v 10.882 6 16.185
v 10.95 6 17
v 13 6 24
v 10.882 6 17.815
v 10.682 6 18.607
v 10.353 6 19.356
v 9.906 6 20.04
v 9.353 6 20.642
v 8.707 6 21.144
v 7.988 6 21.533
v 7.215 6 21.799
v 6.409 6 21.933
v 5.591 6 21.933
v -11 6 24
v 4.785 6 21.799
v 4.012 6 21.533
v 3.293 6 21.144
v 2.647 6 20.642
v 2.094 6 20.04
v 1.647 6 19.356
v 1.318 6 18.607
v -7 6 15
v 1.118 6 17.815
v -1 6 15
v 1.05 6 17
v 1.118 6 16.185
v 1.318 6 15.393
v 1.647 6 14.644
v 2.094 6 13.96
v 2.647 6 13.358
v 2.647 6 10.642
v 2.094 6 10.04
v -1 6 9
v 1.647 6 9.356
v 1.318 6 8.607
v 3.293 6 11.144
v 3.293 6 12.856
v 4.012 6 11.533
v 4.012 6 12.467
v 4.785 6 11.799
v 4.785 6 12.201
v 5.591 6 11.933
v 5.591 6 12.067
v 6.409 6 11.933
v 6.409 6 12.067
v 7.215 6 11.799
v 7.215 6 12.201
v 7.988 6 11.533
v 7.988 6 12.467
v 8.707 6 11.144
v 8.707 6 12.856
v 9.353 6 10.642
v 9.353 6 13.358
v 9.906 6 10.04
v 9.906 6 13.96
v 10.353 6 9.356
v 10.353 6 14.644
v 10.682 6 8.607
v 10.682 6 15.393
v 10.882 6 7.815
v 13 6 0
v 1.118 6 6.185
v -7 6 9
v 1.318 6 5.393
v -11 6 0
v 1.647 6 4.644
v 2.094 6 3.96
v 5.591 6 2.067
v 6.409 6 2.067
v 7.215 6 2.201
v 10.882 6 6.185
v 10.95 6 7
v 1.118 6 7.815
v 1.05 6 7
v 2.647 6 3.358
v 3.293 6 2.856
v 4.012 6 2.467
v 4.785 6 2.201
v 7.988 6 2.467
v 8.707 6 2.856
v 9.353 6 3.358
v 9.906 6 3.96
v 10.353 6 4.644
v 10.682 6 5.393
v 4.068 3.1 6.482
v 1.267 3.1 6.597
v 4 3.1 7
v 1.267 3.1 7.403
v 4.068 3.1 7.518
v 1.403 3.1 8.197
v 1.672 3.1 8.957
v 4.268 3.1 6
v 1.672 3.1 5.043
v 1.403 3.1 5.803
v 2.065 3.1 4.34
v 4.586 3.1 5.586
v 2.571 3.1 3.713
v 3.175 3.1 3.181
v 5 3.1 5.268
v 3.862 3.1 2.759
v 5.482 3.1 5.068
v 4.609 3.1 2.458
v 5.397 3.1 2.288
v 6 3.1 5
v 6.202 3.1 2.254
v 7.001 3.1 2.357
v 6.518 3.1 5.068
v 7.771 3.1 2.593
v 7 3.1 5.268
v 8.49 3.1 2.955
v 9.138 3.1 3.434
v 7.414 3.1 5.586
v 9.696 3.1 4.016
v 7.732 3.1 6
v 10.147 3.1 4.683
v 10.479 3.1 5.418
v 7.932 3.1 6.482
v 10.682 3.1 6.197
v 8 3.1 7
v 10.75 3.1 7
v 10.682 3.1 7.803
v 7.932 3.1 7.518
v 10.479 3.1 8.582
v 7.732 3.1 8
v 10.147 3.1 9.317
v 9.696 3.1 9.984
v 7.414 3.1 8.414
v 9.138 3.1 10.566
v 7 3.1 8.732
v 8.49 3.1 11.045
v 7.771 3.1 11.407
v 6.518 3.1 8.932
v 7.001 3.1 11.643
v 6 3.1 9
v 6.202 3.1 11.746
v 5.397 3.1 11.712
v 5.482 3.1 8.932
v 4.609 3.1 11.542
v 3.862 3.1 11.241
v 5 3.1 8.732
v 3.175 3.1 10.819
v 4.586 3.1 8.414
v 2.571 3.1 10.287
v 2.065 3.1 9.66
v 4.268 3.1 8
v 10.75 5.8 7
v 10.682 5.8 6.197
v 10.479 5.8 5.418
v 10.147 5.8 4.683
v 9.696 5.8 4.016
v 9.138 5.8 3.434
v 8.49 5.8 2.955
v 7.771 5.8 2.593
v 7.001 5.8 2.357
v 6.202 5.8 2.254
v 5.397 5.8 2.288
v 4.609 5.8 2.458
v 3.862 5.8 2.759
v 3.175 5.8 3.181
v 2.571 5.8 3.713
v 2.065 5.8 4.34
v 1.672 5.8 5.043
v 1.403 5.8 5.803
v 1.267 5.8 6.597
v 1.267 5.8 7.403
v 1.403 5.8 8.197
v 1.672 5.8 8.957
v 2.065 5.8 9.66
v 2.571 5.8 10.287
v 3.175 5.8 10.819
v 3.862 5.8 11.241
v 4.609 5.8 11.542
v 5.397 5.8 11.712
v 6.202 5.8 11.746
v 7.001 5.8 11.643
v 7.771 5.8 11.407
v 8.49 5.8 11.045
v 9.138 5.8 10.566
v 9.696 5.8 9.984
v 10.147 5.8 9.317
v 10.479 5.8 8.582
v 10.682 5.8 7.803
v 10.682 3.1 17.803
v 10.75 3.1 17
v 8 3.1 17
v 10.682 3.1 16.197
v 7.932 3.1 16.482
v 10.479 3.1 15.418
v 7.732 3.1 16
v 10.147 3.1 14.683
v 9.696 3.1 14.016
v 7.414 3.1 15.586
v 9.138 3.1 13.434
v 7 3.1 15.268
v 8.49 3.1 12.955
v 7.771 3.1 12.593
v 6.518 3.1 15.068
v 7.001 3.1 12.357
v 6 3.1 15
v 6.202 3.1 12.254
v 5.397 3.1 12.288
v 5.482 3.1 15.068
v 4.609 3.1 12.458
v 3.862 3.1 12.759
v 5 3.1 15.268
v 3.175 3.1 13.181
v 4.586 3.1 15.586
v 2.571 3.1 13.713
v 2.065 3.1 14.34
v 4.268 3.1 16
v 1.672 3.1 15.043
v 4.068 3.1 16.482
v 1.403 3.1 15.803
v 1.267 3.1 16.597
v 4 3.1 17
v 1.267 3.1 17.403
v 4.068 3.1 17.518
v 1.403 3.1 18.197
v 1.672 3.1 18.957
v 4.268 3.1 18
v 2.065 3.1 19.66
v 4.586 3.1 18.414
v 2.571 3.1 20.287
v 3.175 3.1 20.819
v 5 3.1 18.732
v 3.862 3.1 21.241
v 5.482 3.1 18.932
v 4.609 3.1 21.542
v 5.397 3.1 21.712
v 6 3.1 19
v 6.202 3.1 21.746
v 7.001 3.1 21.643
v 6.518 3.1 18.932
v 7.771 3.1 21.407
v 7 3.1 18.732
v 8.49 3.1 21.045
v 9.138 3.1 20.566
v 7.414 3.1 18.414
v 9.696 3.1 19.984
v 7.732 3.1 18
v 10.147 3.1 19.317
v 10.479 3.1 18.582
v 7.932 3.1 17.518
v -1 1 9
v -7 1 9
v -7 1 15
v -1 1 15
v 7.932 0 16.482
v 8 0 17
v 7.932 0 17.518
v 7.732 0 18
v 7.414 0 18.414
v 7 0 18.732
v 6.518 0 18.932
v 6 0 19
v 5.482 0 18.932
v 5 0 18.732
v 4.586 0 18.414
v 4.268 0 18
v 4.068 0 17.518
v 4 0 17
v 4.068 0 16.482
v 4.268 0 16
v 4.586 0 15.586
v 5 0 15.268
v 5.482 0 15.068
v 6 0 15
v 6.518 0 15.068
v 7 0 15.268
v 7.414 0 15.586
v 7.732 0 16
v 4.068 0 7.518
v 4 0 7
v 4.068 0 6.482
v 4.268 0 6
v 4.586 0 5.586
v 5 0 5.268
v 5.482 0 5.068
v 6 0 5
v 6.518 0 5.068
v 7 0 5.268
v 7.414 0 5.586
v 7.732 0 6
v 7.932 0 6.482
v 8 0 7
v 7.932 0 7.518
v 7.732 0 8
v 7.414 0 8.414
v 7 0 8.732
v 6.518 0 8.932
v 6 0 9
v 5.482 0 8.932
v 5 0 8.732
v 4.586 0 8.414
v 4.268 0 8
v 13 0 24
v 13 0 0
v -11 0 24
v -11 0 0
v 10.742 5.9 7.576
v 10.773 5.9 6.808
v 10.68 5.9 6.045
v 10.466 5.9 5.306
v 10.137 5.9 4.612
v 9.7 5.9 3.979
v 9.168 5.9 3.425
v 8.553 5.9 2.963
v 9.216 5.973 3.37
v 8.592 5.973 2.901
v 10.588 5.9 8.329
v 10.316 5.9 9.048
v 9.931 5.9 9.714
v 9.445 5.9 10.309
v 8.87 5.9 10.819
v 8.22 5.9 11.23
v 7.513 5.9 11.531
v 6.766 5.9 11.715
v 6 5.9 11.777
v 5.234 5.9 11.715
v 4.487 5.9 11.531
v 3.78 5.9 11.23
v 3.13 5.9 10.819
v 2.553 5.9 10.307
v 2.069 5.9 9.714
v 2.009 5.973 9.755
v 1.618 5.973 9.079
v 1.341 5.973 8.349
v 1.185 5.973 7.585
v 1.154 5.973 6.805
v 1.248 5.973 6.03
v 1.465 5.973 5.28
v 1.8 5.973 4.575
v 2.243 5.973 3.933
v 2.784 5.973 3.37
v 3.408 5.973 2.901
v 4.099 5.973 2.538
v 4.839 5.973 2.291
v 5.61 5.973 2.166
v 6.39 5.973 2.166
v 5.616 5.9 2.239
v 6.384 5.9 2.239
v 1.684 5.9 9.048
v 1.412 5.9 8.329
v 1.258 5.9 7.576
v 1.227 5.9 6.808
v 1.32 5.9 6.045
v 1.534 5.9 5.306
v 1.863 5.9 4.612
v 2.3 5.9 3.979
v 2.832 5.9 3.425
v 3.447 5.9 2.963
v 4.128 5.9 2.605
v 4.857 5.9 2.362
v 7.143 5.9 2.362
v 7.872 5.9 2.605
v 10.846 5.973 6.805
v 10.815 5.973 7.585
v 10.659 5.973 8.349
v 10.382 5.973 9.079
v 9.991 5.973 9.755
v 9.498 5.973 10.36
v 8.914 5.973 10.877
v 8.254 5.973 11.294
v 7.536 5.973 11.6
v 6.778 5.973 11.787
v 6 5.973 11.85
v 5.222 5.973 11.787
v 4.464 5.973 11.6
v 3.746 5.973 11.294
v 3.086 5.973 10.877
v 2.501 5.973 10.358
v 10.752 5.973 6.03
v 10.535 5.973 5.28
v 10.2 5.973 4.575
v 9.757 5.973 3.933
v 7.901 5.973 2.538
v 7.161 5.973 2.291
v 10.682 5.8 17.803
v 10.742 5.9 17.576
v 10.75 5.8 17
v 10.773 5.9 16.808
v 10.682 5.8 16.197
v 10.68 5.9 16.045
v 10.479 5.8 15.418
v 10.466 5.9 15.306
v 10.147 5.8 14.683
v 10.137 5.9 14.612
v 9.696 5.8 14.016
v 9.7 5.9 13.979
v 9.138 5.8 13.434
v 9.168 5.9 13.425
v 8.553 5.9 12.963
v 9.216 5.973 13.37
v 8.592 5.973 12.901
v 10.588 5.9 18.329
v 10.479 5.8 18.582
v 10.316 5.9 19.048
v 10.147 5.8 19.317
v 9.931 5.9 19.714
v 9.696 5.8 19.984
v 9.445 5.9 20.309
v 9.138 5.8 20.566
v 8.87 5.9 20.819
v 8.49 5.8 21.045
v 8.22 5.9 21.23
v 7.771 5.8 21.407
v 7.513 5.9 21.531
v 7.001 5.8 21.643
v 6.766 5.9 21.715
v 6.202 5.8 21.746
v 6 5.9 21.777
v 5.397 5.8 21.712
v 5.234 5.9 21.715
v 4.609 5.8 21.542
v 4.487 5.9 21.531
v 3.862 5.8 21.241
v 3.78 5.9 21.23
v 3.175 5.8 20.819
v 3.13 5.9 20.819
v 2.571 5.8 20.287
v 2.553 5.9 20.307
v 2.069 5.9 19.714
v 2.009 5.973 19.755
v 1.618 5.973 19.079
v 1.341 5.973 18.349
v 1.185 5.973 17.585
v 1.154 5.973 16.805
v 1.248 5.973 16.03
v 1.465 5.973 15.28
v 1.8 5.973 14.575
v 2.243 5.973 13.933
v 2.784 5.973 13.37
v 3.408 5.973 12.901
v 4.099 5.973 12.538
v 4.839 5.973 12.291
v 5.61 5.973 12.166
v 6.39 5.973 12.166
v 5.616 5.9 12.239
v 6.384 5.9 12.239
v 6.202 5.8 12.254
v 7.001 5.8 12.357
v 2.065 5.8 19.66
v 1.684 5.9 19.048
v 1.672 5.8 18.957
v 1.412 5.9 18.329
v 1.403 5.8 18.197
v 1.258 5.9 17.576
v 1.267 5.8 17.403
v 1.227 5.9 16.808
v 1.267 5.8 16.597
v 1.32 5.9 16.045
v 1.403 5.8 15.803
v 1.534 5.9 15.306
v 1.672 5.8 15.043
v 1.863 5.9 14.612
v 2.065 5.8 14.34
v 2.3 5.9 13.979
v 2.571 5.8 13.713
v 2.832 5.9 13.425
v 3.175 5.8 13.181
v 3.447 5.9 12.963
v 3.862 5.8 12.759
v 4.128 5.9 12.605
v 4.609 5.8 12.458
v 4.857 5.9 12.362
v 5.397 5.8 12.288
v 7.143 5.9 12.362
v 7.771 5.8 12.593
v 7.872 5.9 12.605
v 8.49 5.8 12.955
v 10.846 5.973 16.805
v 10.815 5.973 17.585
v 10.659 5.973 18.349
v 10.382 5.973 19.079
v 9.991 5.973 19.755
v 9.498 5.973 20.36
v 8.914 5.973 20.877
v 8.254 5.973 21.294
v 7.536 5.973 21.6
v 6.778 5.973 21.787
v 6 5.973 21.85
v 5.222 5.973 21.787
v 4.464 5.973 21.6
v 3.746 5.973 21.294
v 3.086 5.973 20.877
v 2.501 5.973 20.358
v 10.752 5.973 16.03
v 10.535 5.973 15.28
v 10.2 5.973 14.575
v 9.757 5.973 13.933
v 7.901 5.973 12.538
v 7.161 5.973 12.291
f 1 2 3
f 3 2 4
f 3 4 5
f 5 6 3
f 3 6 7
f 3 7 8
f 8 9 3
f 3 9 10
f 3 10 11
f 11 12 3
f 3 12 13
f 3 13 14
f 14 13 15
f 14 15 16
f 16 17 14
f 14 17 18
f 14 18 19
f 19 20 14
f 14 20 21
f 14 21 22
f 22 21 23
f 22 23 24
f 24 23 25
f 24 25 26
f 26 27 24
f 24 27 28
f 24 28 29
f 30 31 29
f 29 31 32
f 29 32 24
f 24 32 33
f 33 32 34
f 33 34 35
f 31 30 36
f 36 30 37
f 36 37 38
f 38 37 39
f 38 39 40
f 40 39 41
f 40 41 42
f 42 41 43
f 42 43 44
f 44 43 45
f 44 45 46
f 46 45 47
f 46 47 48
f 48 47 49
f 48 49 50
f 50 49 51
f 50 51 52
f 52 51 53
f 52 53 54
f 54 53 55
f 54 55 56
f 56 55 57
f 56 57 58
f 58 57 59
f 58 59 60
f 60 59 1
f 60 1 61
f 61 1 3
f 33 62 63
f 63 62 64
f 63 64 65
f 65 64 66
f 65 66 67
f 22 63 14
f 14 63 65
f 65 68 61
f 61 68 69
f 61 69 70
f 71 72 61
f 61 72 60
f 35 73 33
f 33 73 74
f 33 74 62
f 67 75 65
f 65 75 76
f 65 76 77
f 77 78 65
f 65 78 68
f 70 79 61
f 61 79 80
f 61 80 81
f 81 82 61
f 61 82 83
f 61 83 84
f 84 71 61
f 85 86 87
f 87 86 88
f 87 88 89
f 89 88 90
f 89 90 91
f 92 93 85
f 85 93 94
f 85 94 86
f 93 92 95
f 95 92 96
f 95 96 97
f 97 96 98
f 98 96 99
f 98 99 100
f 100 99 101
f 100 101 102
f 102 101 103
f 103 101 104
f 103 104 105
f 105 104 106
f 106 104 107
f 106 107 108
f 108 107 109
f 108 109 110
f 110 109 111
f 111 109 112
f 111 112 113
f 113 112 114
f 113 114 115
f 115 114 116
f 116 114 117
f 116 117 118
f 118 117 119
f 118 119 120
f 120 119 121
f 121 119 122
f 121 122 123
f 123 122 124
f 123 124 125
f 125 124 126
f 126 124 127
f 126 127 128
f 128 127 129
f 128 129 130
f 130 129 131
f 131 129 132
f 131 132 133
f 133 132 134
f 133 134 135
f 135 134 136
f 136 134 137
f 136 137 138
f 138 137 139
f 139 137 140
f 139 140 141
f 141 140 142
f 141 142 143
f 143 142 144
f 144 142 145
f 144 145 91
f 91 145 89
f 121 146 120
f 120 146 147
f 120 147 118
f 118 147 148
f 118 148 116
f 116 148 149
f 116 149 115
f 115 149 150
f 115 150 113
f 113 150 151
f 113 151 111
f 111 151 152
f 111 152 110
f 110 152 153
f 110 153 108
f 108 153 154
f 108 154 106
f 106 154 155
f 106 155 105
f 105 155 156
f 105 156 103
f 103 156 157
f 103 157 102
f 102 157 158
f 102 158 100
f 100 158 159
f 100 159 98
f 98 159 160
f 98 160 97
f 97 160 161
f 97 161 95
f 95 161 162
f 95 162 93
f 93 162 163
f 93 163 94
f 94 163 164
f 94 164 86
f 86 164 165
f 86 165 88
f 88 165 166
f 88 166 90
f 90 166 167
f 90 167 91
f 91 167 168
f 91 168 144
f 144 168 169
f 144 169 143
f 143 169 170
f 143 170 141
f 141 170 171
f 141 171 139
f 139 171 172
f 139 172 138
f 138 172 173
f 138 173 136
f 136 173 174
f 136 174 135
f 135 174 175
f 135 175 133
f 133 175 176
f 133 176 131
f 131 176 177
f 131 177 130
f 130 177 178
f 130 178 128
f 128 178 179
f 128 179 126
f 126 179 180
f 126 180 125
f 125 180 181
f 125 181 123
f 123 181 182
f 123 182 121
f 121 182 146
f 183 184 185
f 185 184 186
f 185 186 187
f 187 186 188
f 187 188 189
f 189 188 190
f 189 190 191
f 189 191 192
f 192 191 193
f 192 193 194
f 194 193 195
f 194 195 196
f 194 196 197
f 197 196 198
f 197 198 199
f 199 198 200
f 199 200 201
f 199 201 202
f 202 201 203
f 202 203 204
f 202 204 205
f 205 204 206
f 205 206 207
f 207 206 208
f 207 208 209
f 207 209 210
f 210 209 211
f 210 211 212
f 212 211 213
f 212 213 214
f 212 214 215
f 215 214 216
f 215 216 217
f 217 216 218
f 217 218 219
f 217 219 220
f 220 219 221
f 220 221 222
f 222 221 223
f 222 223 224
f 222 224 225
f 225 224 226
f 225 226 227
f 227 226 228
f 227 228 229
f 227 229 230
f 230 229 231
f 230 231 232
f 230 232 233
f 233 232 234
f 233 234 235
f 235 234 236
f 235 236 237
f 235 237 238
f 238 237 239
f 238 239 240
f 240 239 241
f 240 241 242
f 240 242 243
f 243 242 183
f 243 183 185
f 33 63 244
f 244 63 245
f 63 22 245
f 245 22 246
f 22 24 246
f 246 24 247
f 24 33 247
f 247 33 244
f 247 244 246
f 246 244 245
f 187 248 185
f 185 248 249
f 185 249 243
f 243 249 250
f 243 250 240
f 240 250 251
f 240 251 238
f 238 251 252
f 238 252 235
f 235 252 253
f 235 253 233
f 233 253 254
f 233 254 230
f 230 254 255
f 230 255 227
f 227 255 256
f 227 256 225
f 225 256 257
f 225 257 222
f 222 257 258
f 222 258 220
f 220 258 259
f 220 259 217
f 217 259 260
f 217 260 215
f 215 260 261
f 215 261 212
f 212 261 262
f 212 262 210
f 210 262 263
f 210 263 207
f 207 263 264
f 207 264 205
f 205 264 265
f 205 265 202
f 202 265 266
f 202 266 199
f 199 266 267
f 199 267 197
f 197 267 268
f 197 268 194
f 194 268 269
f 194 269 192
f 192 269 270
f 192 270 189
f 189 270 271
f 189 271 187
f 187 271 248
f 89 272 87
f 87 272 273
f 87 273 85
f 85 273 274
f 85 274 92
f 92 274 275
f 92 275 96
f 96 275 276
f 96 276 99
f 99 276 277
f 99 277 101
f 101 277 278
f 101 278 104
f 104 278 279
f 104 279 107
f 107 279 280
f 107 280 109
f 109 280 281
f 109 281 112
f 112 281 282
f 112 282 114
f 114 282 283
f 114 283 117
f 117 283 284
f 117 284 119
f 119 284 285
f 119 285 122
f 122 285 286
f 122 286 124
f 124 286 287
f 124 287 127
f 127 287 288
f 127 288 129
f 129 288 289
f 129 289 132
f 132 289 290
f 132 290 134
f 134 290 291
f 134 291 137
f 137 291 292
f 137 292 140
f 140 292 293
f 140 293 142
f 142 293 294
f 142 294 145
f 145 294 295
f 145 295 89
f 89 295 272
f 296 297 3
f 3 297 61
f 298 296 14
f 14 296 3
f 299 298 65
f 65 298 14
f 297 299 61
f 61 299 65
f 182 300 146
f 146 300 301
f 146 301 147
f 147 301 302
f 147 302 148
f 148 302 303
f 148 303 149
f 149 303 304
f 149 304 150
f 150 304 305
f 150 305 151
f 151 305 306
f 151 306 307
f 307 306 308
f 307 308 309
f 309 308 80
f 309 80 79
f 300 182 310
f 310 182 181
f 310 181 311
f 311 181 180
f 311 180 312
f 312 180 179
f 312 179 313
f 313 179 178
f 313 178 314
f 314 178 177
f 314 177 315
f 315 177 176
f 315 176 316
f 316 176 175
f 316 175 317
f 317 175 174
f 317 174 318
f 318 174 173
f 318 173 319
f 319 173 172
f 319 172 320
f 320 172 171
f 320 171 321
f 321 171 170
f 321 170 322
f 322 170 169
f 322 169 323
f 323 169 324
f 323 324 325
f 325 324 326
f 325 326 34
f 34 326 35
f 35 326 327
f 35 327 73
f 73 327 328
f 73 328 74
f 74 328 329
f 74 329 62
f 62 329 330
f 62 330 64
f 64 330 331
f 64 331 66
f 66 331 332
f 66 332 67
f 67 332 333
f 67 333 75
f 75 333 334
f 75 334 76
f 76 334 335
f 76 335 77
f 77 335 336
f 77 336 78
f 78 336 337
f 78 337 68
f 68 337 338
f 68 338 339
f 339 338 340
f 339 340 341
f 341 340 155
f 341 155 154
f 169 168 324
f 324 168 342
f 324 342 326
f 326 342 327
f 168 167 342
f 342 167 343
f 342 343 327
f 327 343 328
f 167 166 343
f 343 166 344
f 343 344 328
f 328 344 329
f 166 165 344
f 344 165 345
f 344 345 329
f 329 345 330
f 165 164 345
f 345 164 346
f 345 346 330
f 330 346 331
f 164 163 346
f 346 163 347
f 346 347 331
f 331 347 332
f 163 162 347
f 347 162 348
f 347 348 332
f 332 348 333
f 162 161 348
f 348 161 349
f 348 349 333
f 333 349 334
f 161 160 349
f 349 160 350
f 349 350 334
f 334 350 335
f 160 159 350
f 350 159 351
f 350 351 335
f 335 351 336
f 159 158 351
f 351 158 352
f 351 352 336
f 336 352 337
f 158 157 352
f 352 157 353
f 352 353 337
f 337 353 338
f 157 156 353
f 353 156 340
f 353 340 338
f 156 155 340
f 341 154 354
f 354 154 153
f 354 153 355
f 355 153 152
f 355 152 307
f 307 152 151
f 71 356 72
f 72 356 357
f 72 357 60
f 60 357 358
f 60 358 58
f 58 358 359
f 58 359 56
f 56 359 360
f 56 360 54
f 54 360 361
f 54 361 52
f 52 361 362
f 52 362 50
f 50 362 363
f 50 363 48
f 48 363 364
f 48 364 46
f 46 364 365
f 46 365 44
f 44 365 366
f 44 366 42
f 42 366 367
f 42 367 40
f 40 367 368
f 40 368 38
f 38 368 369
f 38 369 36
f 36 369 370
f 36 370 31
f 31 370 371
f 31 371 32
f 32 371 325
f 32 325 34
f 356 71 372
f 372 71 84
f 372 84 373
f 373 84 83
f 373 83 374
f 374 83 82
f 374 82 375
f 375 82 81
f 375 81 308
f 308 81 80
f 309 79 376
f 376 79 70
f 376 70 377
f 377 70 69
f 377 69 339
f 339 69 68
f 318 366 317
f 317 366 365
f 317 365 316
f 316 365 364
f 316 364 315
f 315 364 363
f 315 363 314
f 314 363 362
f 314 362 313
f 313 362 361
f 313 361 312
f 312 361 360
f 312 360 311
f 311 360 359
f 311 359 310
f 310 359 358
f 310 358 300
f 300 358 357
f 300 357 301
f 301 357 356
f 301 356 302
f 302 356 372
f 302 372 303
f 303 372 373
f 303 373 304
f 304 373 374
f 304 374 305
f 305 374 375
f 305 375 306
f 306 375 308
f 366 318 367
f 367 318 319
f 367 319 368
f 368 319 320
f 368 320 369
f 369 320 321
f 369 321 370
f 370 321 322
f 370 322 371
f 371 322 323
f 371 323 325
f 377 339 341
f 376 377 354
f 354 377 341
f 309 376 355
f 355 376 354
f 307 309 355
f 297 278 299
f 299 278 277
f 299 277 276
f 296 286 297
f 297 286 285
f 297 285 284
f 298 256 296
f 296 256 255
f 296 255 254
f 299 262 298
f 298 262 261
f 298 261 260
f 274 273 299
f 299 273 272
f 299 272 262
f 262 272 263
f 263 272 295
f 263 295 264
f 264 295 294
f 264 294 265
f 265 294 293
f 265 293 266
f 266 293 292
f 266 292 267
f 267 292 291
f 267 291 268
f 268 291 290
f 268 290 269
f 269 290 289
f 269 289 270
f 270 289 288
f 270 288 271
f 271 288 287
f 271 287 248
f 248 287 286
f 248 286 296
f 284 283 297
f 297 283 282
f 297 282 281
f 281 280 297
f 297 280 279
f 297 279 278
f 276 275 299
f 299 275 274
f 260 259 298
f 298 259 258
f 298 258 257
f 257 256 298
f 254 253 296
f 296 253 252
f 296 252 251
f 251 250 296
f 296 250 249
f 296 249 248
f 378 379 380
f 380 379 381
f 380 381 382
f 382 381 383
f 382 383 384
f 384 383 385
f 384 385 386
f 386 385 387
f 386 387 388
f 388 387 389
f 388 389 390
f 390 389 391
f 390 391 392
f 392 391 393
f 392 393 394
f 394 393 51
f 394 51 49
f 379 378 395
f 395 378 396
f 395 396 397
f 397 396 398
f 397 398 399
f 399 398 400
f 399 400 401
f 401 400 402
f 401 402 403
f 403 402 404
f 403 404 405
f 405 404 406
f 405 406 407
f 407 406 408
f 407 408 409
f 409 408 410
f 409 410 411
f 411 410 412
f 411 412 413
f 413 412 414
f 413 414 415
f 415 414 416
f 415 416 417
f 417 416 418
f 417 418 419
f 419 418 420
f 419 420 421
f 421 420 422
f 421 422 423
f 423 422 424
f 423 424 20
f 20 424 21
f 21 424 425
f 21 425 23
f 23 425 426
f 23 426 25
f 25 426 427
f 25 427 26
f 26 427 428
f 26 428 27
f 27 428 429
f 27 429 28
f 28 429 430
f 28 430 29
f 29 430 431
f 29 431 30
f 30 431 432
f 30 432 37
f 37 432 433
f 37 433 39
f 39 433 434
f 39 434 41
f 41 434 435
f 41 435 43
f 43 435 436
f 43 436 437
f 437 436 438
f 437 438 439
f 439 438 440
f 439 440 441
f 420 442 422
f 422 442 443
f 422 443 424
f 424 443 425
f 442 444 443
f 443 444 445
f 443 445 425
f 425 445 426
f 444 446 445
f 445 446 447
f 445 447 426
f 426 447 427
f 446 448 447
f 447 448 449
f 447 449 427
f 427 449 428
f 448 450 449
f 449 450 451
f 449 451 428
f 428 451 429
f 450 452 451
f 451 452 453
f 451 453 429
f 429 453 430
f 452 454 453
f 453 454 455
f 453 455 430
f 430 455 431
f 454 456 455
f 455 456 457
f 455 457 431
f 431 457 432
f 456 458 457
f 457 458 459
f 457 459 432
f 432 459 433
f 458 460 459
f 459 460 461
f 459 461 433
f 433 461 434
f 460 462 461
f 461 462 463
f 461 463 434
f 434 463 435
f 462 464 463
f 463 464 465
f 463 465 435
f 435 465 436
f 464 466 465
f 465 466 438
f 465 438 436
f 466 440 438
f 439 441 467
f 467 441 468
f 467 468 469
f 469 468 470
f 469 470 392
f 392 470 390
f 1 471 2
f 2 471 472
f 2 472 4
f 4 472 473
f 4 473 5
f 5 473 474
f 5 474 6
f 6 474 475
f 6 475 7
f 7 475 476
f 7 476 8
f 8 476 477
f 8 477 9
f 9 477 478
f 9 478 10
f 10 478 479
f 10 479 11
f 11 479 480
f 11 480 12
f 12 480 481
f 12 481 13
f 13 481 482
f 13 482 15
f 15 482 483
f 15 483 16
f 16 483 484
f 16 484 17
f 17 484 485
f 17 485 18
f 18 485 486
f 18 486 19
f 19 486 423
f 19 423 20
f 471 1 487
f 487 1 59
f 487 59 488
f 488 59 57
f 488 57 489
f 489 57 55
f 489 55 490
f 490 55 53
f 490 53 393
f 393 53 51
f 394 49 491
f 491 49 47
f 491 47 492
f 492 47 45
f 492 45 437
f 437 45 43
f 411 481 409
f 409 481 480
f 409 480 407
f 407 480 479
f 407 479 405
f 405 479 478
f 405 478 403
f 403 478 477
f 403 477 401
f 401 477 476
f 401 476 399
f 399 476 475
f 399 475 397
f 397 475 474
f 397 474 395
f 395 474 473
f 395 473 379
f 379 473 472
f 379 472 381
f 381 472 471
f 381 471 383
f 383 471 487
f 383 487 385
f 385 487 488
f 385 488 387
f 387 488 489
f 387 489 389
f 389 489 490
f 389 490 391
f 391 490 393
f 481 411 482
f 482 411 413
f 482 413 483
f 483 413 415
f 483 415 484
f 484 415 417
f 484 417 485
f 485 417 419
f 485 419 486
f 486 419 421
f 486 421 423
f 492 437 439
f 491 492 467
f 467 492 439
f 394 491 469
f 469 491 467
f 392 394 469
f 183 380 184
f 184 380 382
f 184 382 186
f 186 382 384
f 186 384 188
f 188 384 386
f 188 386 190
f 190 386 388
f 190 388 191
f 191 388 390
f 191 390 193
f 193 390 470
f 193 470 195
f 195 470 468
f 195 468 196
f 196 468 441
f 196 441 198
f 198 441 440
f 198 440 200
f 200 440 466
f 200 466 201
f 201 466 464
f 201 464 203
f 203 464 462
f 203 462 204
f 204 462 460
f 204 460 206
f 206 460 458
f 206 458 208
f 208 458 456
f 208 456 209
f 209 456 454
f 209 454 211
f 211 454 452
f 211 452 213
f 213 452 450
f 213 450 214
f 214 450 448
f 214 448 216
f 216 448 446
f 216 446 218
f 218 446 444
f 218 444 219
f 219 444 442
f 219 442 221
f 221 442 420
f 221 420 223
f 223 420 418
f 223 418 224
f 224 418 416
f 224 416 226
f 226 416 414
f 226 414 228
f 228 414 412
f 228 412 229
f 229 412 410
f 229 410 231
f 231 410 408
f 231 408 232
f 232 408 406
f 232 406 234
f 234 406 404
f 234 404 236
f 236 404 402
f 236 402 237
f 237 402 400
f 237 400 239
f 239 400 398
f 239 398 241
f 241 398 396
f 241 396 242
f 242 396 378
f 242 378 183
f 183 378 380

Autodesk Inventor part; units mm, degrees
ref_plane "YZ Plane" through (0, 0, 0) normal (1, 0, 0) x (0, 1, 0)
ref_plane "XZ Plane" through (0, 0, 0) normal (0, 1, 0) x (-1, 0, 0)
ref_plane "XY Plane" through (0, 0, 0) normal (0, 0, 1) x (1, 0, 0)
sketch "Sketch1" plane through (0, 0, 0) normal (0, 1, 0) x (-1, 0, 0)
  line L0 (0, 0) -> (11, 0)
  line L1 (0, 0) -> (-13, 0)
  line L2 (-13, 0) -> (-13, 24)
  line L3 (-13, 24) -> (11, 24)
  line L4 (11, 24) -> (11, 0)
  circle A0 centre (-6, 17) radius 2
  circle A1 centre (-6, 7) radius 2
  circle A2 centre (-6, 17) radius 4.65
  circle A3 centre (-6, 7) radius 4.55
  dimension "d0" = 11
  dimension "d1" = 13
  dimension "d2" = 24
  dimension "d3" = 4
  dimension "d4" = 4
  dimension "d5" = 10
  dimension "d12" = 9.3
  dimension "d13" = 9.1
  dimension "d14" = 7
  dimension "d19" = 7
  dimension "d20" = 0
extrude "Extrusion1" add sketch "Sketch1" along normal blind 6 contours L1 L2 L3 L4 L0 | A2 | A3
sketch "Sketch2" plane through (0, 6, 0) normal (0, 1, 0) x (1, 0, 0)
  line L0 (-7, -15) -> (-1, -15)
  line L1 (-1, -15) -> (-1, -9)
  line L2 (-1, -9) -> (-7, -9)
  line L3 (-7, -9) -> (-7, -15)
  line L4 (13, 0) -> (-11, 0) projected
  line L5 (-11, -24) -> (13, -24) projected
  line L6 (-11, 0) -> (-11, -24) projected
  line L7 (-11, -24) -> (-11, 0)
  point P0 (0, 0)
  dimension "d8" = 9
  dimension "d9" = 24
extrude "Extrusion2" cut sketch "Sketch2" against normal blind 5
sketch "Sketch3" plane through (0, 6, 0) normal (0, 1, 0) x (1, 0, 0)
  circle A0 centre (6, -17) radius 2 projected
  circle A1 centre (6, -17) radius 4.75
  circle A2 centre (6, -7) radius 4.75
  point P0 (0, 0)
  dimension "d15" = 9.5
  dimension "d16" = 9.5
extrude "Extrusion3" cut sketch "Sketch3" against normal blind 2.9
fillet "Fillet1" radius 0.2 2 edges at (1.25, 6, 17) (1.25, 6, 7)
properties part number "base"
